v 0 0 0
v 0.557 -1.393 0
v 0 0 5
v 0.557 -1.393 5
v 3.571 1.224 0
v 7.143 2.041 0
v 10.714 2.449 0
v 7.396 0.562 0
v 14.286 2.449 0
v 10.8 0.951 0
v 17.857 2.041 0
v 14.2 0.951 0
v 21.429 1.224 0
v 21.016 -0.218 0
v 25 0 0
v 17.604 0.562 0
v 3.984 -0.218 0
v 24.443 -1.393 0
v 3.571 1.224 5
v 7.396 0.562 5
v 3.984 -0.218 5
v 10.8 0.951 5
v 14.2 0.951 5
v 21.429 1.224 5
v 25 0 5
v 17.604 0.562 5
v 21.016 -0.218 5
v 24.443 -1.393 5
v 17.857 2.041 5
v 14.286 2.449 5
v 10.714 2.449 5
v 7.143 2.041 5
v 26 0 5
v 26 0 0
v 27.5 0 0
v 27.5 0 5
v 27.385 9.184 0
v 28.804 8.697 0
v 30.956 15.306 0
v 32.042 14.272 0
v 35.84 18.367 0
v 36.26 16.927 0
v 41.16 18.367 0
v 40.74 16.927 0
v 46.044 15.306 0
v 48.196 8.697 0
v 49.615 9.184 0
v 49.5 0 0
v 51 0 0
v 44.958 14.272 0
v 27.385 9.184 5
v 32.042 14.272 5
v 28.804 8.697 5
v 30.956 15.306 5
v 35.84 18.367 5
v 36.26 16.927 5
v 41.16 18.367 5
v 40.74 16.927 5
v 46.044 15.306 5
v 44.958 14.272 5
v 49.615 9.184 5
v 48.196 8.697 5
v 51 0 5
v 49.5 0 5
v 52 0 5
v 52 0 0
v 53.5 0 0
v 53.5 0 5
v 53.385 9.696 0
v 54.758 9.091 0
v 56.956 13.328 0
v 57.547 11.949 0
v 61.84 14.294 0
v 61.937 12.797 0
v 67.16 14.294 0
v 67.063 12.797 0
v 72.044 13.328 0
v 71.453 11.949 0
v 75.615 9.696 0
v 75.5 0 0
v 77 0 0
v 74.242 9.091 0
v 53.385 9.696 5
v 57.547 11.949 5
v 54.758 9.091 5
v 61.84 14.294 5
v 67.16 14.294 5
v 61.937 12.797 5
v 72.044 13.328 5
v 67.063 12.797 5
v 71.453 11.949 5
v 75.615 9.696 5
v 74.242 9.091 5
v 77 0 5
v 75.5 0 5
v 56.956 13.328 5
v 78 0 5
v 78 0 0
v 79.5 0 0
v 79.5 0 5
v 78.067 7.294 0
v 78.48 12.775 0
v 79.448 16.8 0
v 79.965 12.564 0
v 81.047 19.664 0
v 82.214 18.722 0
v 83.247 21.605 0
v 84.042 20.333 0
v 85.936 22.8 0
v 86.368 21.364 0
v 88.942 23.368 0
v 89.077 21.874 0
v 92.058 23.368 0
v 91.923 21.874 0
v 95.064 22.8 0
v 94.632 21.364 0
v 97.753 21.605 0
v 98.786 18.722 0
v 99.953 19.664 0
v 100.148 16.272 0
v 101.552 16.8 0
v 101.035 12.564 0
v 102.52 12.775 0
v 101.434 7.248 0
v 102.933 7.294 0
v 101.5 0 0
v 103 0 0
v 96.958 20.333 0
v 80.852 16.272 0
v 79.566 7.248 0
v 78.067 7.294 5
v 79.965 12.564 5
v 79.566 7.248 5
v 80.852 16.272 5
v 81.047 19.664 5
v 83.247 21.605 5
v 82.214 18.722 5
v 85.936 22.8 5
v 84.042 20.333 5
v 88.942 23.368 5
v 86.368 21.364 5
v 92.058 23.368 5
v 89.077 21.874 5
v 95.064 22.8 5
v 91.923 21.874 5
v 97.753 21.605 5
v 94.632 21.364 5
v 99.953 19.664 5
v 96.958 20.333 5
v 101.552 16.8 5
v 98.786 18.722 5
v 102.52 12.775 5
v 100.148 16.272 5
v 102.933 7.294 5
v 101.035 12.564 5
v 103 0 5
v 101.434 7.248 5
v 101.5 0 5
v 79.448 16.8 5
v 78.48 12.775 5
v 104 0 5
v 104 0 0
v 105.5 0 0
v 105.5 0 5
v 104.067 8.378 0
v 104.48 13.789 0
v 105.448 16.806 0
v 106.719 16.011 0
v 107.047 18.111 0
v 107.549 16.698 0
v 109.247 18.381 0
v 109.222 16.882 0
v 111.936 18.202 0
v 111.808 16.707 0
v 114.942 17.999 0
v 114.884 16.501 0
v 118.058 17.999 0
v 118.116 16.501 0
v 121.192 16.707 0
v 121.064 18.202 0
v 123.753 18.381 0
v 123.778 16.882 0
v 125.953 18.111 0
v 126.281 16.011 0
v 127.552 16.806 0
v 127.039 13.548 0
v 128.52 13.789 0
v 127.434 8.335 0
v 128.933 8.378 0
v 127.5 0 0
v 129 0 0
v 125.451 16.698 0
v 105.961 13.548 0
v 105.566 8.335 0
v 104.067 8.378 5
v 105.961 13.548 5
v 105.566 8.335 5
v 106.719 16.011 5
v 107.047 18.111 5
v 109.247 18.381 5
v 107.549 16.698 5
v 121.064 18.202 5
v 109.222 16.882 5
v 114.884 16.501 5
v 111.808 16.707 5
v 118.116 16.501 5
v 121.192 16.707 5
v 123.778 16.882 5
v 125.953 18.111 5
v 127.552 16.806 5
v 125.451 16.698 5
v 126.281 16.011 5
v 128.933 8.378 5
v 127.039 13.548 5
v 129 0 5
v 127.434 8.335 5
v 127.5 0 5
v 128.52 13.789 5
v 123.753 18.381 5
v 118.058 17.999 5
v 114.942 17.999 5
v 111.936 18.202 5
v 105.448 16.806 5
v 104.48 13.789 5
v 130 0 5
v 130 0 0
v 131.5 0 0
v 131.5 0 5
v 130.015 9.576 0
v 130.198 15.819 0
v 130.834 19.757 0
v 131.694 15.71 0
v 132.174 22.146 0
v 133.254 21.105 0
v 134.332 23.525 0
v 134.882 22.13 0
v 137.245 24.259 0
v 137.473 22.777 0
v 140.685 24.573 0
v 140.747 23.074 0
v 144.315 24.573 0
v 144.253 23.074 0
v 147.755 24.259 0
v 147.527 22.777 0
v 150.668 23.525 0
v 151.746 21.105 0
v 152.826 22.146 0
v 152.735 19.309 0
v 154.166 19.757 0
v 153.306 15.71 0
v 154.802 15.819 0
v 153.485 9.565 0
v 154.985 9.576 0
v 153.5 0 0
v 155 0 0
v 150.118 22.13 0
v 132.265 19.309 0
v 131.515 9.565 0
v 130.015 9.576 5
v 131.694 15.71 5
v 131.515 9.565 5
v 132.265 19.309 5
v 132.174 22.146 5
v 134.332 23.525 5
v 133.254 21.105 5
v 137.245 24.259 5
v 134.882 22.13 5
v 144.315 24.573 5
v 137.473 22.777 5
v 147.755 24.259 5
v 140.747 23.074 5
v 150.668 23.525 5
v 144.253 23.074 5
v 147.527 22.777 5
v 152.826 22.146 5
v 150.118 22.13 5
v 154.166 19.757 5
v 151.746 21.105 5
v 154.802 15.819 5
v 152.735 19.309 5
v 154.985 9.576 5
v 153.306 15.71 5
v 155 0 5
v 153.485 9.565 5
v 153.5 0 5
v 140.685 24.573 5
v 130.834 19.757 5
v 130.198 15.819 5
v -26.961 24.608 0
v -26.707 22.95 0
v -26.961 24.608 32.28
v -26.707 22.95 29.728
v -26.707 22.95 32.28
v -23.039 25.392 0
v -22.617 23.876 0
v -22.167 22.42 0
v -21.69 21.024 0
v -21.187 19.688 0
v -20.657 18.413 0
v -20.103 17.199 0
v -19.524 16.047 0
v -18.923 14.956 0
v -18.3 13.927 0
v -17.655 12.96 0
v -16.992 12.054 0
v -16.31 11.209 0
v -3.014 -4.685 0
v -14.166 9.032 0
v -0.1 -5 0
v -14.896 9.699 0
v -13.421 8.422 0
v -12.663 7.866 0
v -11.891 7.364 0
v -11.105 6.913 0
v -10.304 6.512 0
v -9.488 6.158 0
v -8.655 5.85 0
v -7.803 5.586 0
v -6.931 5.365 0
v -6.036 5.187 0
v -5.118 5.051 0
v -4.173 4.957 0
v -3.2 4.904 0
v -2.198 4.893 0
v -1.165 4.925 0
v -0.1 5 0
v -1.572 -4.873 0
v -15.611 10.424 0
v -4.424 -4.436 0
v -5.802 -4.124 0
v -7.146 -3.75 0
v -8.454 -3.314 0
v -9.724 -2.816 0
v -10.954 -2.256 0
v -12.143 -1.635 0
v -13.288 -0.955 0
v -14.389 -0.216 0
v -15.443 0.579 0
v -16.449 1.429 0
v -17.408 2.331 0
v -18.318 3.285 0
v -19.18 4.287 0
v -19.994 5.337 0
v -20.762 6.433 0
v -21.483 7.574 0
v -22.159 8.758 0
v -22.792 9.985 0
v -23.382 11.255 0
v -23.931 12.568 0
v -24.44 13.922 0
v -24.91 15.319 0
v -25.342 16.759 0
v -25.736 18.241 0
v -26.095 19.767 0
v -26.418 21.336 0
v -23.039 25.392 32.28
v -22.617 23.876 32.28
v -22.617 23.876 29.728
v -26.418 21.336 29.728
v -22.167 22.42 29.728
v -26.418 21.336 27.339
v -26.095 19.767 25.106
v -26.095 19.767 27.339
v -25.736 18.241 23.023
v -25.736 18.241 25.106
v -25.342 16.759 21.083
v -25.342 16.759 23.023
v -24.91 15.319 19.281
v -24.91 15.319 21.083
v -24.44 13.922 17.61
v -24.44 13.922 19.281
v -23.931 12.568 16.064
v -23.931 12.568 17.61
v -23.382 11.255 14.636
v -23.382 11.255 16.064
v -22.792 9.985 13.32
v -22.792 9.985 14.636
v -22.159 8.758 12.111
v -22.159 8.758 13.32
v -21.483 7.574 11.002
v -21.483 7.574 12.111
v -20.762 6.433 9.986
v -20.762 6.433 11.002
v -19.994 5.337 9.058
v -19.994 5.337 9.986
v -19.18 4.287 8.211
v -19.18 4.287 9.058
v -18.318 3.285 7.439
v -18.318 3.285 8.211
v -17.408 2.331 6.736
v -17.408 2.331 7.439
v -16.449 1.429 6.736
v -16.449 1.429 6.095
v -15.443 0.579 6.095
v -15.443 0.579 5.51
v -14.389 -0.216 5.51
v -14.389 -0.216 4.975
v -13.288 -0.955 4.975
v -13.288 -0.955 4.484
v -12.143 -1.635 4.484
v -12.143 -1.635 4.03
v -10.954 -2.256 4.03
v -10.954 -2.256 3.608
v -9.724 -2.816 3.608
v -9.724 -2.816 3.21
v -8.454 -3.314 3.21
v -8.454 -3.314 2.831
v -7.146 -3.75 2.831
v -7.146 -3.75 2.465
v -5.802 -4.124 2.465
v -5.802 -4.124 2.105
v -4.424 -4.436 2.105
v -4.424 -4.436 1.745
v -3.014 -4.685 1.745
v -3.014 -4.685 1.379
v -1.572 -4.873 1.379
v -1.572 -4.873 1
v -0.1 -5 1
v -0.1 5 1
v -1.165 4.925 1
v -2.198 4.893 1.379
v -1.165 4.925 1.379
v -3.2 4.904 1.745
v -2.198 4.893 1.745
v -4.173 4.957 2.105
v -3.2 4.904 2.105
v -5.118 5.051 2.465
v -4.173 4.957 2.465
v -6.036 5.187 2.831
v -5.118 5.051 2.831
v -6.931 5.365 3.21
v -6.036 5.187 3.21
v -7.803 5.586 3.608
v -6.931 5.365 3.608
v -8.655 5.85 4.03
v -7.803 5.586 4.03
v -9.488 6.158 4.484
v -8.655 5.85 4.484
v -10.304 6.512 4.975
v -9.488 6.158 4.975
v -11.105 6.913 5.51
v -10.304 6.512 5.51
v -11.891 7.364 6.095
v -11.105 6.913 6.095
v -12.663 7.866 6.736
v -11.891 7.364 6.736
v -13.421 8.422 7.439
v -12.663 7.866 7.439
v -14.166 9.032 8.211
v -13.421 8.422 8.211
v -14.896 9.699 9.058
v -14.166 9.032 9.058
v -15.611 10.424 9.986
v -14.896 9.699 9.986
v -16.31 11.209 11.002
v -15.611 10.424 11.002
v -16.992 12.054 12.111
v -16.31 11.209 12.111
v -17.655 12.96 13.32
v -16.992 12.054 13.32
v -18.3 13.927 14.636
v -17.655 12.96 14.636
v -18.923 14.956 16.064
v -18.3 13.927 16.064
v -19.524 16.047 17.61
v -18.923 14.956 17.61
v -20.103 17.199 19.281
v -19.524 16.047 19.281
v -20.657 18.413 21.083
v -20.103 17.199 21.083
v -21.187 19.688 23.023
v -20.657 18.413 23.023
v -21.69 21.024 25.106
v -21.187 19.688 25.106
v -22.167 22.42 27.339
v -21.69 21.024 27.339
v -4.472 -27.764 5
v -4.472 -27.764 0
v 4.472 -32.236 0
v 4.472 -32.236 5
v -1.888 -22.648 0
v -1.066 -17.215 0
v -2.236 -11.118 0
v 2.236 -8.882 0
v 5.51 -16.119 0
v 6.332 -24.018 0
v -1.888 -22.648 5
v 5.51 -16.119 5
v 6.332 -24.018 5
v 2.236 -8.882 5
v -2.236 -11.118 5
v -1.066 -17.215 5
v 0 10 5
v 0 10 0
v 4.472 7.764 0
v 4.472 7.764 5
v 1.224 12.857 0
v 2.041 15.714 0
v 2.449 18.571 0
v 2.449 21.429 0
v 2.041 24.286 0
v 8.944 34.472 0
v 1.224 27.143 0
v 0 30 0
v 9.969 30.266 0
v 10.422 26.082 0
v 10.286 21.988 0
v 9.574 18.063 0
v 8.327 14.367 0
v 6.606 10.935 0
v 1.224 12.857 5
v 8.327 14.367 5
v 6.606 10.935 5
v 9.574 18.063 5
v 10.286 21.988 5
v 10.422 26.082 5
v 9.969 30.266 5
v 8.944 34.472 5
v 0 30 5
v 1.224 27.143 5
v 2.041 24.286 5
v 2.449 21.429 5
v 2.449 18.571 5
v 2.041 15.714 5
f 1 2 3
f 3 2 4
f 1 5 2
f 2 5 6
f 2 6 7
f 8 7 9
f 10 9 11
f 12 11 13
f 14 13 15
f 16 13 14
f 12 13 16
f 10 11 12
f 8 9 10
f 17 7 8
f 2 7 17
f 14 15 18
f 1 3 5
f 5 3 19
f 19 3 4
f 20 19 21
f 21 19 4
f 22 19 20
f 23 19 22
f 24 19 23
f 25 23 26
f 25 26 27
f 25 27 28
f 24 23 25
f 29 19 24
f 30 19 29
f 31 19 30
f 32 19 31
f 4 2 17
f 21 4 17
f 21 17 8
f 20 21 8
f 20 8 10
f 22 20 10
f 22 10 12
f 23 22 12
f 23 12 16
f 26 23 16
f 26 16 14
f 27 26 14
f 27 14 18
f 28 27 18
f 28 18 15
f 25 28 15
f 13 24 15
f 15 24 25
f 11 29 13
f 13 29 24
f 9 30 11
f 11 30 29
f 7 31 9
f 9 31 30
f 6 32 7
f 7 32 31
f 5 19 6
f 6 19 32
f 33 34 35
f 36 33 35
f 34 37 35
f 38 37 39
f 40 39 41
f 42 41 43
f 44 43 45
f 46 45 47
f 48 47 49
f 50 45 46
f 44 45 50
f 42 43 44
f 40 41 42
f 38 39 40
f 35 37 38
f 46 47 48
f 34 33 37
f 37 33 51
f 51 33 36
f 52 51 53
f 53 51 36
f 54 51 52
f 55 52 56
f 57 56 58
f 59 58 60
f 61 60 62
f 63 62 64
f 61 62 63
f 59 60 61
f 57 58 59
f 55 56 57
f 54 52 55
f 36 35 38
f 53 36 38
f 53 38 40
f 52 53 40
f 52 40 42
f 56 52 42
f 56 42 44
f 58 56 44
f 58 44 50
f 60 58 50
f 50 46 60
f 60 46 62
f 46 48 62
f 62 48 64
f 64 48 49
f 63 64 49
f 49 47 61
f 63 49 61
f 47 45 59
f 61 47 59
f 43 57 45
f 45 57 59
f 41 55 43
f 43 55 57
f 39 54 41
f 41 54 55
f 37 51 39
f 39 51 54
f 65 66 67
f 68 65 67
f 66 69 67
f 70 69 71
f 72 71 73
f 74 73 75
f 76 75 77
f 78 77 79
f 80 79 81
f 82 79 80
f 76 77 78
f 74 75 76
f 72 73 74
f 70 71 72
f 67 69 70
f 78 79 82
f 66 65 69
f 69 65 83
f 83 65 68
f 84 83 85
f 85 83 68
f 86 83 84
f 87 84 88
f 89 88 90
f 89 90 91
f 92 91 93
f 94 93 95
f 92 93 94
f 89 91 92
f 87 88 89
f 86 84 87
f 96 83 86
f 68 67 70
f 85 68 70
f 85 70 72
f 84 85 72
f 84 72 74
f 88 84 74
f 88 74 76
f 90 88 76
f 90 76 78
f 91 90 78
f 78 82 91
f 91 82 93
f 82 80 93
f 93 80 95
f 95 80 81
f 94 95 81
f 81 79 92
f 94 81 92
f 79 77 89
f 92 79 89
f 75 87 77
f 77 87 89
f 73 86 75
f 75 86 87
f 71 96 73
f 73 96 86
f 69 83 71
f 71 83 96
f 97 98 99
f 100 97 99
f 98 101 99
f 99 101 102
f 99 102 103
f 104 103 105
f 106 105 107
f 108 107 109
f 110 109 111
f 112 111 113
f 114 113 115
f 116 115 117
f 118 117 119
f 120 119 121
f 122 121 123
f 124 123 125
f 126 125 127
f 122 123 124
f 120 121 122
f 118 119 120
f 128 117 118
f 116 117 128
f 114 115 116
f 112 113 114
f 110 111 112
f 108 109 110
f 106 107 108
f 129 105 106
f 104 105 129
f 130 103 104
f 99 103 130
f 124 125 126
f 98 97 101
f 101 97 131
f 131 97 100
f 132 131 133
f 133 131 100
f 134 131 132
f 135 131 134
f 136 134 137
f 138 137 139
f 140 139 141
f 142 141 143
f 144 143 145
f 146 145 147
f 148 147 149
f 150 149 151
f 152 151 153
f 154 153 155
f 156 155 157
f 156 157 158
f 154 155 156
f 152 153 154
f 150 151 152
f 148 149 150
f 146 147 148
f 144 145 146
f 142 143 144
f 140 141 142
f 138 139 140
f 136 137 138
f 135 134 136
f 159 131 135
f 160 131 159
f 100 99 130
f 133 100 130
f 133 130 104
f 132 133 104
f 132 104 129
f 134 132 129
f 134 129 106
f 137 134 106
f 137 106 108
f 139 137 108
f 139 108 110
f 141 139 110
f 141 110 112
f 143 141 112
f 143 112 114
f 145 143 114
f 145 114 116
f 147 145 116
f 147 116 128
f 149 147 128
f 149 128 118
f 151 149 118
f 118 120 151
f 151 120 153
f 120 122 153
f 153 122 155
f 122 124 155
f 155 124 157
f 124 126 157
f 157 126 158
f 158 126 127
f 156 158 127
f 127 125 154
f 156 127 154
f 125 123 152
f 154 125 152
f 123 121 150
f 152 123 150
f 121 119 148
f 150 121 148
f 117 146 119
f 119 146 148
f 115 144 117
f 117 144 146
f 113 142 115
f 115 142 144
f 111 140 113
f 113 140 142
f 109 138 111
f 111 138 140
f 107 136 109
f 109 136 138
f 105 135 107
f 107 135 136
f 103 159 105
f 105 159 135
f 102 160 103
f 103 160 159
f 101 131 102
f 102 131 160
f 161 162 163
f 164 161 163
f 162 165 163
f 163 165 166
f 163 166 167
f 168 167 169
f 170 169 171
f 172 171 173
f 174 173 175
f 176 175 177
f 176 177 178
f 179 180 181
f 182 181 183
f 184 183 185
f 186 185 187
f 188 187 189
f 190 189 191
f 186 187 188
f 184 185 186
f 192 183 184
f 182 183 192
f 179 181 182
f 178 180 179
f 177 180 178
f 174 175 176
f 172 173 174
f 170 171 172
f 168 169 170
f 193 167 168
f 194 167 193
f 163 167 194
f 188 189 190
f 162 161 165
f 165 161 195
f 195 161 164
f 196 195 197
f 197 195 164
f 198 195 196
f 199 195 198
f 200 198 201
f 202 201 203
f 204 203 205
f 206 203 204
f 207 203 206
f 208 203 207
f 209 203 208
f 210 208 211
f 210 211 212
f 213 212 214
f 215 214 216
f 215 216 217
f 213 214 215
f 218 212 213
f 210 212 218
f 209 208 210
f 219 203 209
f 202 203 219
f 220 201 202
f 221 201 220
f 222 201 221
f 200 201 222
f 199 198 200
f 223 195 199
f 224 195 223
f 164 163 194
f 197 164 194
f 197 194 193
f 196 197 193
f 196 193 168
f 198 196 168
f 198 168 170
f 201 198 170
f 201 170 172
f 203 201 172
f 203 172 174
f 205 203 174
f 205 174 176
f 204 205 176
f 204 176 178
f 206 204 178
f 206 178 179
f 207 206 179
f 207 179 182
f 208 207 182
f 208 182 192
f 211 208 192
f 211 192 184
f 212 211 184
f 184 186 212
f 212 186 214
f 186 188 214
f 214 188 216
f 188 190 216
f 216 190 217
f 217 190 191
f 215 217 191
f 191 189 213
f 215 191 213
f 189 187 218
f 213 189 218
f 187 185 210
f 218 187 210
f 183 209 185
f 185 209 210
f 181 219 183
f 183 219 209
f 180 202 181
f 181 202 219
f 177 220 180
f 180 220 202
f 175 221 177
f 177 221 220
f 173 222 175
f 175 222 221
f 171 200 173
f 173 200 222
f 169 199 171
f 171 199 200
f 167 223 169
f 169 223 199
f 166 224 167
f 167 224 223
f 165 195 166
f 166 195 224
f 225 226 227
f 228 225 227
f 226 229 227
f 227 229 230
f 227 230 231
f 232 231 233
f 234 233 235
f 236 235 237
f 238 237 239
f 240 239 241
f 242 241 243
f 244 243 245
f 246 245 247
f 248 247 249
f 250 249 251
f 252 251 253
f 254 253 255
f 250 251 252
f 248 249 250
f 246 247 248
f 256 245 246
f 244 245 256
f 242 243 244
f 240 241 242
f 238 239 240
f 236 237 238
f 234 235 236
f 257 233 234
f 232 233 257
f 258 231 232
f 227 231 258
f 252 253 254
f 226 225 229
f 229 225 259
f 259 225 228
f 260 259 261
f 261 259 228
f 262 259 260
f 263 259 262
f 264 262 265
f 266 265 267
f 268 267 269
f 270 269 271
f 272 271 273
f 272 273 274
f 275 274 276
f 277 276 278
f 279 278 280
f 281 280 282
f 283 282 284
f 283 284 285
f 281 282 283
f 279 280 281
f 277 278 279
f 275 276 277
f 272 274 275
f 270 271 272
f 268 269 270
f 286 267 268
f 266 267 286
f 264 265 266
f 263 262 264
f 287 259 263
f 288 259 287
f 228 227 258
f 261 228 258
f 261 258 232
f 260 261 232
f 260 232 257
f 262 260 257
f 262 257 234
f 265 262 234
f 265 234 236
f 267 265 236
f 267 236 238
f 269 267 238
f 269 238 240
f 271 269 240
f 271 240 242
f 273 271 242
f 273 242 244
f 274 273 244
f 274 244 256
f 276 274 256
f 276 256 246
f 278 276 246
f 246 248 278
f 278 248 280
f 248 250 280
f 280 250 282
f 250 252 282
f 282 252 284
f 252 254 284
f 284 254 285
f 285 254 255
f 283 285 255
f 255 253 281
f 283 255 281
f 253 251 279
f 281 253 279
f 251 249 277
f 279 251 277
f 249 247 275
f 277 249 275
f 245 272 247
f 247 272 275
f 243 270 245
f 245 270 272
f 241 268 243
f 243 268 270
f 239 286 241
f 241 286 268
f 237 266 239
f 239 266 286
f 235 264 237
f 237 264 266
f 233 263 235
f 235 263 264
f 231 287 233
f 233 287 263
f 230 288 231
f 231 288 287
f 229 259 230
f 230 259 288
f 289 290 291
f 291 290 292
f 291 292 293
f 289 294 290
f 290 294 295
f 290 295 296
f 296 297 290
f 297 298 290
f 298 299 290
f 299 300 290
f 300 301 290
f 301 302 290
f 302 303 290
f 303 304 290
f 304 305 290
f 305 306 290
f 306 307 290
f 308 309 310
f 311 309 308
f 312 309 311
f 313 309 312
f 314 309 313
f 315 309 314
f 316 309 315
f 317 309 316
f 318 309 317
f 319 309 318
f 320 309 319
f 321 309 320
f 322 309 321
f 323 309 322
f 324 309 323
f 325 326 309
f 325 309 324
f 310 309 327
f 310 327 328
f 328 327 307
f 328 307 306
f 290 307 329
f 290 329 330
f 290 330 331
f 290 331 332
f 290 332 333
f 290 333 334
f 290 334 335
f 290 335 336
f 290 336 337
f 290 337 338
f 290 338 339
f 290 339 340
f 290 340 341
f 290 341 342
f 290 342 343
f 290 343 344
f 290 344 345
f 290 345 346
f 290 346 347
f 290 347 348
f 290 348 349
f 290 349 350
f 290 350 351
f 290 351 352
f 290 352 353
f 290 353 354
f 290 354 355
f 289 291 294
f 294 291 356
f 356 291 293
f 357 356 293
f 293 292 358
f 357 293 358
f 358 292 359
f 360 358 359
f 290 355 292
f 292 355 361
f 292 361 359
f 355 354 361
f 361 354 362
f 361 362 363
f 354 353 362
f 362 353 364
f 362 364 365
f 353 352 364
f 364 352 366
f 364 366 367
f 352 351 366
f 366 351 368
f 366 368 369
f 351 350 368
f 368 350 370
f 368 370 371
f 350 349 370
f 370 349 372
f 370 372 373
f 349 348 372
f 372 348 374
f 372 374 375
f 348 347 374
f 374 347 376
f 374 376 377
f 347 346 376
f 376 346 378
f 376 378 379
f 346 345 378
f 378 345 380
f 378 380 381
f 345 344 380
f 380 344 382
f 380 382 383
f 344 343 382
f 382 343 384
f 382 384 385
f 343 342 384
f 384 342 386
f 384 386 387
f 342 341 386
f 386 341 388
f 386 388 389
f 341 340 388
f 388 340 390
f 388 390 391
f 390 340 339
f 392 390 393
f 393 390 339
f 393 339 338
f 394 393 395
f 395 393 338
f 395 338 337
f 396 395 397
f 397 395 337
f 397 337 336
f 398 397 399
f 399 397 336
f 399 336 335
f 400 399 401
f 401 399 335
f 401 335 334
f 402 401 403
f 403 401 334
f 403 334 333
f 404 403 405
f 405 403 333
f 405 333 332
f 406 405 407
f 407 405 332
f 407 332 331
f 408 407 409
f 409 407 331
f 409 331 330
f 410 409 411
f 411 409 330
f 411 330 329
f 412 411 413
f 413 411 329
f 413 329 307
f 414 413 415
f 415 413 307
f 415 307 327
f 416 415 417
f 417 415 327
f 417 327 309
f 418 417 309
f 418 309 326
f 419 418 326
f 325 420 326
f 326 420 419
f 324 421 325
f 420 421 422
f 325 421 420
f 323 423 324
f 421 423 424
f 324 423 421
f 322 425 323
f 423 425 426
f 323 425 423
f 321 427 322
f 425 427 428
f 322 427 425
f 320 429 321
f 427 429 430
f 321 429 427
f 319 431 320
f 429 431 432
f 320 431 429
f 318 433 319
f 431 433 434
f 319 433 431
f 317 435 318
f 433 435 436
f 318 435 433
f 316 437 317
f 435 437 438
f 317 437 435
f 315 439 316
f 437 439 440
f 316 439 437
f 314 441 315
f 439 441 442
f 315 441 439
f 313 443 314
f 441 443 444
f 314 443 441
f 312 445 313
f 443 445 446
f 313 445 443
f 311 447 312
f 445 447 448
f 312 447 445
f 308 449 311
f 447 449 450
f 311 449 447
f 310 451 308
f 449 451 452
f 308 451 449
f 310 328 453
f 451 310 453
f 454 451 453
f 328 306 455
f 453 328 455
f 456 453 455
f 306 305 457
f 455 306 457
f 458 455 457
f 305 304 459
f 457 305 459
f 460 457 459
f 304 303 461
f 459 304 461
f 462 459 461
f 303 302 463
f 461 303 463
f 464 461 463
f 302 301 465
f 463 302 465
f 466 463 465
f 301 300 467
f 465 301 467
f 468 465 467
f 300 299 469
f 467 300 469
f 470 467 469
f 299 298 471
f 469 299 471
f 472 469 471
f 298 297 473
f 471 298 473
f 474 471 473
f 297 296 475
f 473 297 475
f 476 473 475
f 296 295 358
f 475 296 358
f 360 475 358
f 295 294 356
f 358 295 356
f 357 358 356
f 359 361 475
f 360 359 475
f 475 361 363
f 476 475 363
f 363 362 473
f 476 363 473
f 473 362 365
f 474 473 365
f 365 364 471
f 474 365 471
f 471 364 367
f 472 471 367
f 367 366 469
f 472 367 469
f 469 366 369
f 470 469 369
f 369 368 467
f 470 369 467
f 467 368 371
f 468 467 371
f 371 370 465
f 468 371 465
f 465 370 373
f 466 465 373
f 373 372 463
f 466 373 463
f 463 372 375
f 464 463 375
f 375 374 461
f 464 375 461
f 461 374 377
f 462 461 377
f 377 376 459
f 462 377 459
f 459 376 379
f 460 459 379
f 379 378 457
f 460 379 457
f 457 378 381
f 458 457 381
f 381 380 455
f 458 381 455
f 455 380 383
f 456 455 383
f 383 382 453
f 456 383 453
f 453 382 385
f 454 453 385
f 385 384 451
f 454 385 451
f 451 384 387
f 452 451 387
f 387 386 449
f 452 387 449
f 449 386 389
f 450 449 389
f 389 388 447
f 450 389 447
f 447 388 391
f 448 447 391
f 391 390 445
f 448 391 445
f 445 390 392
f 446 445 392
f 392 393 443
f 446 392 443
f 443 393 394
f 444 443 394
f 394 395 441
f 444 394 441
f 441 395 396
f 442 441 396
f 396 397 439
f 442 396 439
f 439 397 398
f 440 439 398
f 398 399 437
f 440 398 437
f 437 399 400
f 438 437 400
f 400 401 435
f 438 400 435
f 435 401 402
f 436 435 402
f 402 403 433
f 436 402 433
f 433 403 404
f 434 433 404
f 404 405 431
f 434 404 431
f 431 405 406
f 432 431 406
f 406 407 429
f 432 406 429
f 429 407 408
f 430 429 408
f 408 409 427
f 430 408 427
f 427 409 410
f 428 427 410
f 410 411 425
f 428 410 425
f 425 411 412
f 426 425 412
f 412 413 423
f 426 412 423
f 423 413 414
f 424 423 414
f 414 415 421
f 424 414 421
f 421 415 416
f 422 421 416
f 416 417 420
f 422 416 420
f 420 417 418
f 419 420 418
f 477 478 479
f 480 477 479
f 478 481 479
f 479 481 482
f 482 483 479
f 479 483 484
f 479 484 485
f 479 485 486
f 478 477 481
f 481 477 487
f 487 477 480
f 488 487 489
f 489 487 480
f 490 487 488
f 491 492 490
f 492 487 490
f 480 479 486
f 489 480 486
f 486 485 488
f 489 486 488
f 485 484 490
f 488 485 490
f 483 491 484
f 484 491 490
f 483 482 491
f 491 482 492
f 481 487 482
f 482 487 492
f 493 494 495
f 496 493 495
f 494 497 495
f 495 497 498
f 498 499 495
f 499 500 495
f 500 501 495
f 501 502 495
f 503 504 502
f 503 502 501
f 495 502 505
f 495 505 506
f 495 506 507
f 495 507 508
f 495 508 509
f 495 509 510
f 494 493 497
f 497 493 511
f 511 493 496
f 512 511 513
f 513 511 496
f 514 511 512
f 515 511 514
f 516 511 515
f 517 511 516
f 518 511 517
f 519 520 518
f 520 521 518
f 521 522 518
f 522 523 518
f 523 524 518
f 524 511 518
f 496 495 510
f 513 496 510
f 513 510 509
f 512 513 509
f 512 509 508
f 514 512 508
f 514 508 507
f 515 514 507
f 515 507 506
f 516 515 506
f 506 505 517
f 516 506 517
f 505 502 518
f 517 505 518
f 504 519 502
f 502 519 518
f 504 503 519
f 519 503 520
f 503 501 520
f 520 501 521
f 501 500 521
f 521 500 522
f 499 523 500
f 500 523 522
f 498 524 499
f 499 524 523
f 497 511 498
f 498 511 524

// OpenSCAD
use <BezierScad.scad>;
x = 25;
translate([0,0,0]) linear_extrude(height = 5) BezLine( [
  [0,0],
  [x/2, 5],
  [x,0],
] , [1.5], 3 );
translate([26,0,0]) linear_extrude(height = 5) BezLine( [
  [0,0],
  [0, x], [x, x],
  [x,0],
] , [1.5], 3 );
translate([52,0,0]) linear_extrude(height = 5) BezLine( [
  [0,0],
  [0, x], [x/2, 5], [x, x],
  [x,0],
] , [1.5], 3 );
translate([78,0,0]) linear_extrude(height = 5) BezLine( [
  [0,0],
  [0, x], [0, x], [x, x], [x, x],
  [x,0],
] , [1.5], 4 );
translate([104,0,0]) linear_extrude(height = 5) BezLine( [
  [0,0],
  [0, x], [0, x], [x/2, 5], [x, x], [x, x],
  [x,0],
] , [1.5], 4 );
translate([130,0,0]) linear_extrude(height = 5) BezLine( [
  [0,0],
  [0, x], [0, x], [0, x], [x, x], [x, x], [x, x],
  [x,0],
] , [1.5], 4 );
translate([156,0,0]) linear_extrude(height = 5) BezLine( [
  [0,0],
  [0, x], [0, x], [0, x], [x/2, 5], [x, x], [x, x], [x, x],
  [x,0],
] , [1.5], 5 );

BezWall([
  [-0.1,0],
  [-20, 0],
  [-25,25]
  ],  widthCtls = [10, 4], 
      heightCtls = [1, 5, 6, 35], 
      resolution = 5,
      centered = true
);

linear_extrude(height = 5) BezLine([
  [0,-10], [5, -20], [0,-30]
  ], width = [5, 10], resolution = 2, centered = true);

linear_extrude(height = 5) BezLine([
  [0,10], [5, 20], [0,30]
  ], width = [5, 10], resolution = 3, centered = false);
